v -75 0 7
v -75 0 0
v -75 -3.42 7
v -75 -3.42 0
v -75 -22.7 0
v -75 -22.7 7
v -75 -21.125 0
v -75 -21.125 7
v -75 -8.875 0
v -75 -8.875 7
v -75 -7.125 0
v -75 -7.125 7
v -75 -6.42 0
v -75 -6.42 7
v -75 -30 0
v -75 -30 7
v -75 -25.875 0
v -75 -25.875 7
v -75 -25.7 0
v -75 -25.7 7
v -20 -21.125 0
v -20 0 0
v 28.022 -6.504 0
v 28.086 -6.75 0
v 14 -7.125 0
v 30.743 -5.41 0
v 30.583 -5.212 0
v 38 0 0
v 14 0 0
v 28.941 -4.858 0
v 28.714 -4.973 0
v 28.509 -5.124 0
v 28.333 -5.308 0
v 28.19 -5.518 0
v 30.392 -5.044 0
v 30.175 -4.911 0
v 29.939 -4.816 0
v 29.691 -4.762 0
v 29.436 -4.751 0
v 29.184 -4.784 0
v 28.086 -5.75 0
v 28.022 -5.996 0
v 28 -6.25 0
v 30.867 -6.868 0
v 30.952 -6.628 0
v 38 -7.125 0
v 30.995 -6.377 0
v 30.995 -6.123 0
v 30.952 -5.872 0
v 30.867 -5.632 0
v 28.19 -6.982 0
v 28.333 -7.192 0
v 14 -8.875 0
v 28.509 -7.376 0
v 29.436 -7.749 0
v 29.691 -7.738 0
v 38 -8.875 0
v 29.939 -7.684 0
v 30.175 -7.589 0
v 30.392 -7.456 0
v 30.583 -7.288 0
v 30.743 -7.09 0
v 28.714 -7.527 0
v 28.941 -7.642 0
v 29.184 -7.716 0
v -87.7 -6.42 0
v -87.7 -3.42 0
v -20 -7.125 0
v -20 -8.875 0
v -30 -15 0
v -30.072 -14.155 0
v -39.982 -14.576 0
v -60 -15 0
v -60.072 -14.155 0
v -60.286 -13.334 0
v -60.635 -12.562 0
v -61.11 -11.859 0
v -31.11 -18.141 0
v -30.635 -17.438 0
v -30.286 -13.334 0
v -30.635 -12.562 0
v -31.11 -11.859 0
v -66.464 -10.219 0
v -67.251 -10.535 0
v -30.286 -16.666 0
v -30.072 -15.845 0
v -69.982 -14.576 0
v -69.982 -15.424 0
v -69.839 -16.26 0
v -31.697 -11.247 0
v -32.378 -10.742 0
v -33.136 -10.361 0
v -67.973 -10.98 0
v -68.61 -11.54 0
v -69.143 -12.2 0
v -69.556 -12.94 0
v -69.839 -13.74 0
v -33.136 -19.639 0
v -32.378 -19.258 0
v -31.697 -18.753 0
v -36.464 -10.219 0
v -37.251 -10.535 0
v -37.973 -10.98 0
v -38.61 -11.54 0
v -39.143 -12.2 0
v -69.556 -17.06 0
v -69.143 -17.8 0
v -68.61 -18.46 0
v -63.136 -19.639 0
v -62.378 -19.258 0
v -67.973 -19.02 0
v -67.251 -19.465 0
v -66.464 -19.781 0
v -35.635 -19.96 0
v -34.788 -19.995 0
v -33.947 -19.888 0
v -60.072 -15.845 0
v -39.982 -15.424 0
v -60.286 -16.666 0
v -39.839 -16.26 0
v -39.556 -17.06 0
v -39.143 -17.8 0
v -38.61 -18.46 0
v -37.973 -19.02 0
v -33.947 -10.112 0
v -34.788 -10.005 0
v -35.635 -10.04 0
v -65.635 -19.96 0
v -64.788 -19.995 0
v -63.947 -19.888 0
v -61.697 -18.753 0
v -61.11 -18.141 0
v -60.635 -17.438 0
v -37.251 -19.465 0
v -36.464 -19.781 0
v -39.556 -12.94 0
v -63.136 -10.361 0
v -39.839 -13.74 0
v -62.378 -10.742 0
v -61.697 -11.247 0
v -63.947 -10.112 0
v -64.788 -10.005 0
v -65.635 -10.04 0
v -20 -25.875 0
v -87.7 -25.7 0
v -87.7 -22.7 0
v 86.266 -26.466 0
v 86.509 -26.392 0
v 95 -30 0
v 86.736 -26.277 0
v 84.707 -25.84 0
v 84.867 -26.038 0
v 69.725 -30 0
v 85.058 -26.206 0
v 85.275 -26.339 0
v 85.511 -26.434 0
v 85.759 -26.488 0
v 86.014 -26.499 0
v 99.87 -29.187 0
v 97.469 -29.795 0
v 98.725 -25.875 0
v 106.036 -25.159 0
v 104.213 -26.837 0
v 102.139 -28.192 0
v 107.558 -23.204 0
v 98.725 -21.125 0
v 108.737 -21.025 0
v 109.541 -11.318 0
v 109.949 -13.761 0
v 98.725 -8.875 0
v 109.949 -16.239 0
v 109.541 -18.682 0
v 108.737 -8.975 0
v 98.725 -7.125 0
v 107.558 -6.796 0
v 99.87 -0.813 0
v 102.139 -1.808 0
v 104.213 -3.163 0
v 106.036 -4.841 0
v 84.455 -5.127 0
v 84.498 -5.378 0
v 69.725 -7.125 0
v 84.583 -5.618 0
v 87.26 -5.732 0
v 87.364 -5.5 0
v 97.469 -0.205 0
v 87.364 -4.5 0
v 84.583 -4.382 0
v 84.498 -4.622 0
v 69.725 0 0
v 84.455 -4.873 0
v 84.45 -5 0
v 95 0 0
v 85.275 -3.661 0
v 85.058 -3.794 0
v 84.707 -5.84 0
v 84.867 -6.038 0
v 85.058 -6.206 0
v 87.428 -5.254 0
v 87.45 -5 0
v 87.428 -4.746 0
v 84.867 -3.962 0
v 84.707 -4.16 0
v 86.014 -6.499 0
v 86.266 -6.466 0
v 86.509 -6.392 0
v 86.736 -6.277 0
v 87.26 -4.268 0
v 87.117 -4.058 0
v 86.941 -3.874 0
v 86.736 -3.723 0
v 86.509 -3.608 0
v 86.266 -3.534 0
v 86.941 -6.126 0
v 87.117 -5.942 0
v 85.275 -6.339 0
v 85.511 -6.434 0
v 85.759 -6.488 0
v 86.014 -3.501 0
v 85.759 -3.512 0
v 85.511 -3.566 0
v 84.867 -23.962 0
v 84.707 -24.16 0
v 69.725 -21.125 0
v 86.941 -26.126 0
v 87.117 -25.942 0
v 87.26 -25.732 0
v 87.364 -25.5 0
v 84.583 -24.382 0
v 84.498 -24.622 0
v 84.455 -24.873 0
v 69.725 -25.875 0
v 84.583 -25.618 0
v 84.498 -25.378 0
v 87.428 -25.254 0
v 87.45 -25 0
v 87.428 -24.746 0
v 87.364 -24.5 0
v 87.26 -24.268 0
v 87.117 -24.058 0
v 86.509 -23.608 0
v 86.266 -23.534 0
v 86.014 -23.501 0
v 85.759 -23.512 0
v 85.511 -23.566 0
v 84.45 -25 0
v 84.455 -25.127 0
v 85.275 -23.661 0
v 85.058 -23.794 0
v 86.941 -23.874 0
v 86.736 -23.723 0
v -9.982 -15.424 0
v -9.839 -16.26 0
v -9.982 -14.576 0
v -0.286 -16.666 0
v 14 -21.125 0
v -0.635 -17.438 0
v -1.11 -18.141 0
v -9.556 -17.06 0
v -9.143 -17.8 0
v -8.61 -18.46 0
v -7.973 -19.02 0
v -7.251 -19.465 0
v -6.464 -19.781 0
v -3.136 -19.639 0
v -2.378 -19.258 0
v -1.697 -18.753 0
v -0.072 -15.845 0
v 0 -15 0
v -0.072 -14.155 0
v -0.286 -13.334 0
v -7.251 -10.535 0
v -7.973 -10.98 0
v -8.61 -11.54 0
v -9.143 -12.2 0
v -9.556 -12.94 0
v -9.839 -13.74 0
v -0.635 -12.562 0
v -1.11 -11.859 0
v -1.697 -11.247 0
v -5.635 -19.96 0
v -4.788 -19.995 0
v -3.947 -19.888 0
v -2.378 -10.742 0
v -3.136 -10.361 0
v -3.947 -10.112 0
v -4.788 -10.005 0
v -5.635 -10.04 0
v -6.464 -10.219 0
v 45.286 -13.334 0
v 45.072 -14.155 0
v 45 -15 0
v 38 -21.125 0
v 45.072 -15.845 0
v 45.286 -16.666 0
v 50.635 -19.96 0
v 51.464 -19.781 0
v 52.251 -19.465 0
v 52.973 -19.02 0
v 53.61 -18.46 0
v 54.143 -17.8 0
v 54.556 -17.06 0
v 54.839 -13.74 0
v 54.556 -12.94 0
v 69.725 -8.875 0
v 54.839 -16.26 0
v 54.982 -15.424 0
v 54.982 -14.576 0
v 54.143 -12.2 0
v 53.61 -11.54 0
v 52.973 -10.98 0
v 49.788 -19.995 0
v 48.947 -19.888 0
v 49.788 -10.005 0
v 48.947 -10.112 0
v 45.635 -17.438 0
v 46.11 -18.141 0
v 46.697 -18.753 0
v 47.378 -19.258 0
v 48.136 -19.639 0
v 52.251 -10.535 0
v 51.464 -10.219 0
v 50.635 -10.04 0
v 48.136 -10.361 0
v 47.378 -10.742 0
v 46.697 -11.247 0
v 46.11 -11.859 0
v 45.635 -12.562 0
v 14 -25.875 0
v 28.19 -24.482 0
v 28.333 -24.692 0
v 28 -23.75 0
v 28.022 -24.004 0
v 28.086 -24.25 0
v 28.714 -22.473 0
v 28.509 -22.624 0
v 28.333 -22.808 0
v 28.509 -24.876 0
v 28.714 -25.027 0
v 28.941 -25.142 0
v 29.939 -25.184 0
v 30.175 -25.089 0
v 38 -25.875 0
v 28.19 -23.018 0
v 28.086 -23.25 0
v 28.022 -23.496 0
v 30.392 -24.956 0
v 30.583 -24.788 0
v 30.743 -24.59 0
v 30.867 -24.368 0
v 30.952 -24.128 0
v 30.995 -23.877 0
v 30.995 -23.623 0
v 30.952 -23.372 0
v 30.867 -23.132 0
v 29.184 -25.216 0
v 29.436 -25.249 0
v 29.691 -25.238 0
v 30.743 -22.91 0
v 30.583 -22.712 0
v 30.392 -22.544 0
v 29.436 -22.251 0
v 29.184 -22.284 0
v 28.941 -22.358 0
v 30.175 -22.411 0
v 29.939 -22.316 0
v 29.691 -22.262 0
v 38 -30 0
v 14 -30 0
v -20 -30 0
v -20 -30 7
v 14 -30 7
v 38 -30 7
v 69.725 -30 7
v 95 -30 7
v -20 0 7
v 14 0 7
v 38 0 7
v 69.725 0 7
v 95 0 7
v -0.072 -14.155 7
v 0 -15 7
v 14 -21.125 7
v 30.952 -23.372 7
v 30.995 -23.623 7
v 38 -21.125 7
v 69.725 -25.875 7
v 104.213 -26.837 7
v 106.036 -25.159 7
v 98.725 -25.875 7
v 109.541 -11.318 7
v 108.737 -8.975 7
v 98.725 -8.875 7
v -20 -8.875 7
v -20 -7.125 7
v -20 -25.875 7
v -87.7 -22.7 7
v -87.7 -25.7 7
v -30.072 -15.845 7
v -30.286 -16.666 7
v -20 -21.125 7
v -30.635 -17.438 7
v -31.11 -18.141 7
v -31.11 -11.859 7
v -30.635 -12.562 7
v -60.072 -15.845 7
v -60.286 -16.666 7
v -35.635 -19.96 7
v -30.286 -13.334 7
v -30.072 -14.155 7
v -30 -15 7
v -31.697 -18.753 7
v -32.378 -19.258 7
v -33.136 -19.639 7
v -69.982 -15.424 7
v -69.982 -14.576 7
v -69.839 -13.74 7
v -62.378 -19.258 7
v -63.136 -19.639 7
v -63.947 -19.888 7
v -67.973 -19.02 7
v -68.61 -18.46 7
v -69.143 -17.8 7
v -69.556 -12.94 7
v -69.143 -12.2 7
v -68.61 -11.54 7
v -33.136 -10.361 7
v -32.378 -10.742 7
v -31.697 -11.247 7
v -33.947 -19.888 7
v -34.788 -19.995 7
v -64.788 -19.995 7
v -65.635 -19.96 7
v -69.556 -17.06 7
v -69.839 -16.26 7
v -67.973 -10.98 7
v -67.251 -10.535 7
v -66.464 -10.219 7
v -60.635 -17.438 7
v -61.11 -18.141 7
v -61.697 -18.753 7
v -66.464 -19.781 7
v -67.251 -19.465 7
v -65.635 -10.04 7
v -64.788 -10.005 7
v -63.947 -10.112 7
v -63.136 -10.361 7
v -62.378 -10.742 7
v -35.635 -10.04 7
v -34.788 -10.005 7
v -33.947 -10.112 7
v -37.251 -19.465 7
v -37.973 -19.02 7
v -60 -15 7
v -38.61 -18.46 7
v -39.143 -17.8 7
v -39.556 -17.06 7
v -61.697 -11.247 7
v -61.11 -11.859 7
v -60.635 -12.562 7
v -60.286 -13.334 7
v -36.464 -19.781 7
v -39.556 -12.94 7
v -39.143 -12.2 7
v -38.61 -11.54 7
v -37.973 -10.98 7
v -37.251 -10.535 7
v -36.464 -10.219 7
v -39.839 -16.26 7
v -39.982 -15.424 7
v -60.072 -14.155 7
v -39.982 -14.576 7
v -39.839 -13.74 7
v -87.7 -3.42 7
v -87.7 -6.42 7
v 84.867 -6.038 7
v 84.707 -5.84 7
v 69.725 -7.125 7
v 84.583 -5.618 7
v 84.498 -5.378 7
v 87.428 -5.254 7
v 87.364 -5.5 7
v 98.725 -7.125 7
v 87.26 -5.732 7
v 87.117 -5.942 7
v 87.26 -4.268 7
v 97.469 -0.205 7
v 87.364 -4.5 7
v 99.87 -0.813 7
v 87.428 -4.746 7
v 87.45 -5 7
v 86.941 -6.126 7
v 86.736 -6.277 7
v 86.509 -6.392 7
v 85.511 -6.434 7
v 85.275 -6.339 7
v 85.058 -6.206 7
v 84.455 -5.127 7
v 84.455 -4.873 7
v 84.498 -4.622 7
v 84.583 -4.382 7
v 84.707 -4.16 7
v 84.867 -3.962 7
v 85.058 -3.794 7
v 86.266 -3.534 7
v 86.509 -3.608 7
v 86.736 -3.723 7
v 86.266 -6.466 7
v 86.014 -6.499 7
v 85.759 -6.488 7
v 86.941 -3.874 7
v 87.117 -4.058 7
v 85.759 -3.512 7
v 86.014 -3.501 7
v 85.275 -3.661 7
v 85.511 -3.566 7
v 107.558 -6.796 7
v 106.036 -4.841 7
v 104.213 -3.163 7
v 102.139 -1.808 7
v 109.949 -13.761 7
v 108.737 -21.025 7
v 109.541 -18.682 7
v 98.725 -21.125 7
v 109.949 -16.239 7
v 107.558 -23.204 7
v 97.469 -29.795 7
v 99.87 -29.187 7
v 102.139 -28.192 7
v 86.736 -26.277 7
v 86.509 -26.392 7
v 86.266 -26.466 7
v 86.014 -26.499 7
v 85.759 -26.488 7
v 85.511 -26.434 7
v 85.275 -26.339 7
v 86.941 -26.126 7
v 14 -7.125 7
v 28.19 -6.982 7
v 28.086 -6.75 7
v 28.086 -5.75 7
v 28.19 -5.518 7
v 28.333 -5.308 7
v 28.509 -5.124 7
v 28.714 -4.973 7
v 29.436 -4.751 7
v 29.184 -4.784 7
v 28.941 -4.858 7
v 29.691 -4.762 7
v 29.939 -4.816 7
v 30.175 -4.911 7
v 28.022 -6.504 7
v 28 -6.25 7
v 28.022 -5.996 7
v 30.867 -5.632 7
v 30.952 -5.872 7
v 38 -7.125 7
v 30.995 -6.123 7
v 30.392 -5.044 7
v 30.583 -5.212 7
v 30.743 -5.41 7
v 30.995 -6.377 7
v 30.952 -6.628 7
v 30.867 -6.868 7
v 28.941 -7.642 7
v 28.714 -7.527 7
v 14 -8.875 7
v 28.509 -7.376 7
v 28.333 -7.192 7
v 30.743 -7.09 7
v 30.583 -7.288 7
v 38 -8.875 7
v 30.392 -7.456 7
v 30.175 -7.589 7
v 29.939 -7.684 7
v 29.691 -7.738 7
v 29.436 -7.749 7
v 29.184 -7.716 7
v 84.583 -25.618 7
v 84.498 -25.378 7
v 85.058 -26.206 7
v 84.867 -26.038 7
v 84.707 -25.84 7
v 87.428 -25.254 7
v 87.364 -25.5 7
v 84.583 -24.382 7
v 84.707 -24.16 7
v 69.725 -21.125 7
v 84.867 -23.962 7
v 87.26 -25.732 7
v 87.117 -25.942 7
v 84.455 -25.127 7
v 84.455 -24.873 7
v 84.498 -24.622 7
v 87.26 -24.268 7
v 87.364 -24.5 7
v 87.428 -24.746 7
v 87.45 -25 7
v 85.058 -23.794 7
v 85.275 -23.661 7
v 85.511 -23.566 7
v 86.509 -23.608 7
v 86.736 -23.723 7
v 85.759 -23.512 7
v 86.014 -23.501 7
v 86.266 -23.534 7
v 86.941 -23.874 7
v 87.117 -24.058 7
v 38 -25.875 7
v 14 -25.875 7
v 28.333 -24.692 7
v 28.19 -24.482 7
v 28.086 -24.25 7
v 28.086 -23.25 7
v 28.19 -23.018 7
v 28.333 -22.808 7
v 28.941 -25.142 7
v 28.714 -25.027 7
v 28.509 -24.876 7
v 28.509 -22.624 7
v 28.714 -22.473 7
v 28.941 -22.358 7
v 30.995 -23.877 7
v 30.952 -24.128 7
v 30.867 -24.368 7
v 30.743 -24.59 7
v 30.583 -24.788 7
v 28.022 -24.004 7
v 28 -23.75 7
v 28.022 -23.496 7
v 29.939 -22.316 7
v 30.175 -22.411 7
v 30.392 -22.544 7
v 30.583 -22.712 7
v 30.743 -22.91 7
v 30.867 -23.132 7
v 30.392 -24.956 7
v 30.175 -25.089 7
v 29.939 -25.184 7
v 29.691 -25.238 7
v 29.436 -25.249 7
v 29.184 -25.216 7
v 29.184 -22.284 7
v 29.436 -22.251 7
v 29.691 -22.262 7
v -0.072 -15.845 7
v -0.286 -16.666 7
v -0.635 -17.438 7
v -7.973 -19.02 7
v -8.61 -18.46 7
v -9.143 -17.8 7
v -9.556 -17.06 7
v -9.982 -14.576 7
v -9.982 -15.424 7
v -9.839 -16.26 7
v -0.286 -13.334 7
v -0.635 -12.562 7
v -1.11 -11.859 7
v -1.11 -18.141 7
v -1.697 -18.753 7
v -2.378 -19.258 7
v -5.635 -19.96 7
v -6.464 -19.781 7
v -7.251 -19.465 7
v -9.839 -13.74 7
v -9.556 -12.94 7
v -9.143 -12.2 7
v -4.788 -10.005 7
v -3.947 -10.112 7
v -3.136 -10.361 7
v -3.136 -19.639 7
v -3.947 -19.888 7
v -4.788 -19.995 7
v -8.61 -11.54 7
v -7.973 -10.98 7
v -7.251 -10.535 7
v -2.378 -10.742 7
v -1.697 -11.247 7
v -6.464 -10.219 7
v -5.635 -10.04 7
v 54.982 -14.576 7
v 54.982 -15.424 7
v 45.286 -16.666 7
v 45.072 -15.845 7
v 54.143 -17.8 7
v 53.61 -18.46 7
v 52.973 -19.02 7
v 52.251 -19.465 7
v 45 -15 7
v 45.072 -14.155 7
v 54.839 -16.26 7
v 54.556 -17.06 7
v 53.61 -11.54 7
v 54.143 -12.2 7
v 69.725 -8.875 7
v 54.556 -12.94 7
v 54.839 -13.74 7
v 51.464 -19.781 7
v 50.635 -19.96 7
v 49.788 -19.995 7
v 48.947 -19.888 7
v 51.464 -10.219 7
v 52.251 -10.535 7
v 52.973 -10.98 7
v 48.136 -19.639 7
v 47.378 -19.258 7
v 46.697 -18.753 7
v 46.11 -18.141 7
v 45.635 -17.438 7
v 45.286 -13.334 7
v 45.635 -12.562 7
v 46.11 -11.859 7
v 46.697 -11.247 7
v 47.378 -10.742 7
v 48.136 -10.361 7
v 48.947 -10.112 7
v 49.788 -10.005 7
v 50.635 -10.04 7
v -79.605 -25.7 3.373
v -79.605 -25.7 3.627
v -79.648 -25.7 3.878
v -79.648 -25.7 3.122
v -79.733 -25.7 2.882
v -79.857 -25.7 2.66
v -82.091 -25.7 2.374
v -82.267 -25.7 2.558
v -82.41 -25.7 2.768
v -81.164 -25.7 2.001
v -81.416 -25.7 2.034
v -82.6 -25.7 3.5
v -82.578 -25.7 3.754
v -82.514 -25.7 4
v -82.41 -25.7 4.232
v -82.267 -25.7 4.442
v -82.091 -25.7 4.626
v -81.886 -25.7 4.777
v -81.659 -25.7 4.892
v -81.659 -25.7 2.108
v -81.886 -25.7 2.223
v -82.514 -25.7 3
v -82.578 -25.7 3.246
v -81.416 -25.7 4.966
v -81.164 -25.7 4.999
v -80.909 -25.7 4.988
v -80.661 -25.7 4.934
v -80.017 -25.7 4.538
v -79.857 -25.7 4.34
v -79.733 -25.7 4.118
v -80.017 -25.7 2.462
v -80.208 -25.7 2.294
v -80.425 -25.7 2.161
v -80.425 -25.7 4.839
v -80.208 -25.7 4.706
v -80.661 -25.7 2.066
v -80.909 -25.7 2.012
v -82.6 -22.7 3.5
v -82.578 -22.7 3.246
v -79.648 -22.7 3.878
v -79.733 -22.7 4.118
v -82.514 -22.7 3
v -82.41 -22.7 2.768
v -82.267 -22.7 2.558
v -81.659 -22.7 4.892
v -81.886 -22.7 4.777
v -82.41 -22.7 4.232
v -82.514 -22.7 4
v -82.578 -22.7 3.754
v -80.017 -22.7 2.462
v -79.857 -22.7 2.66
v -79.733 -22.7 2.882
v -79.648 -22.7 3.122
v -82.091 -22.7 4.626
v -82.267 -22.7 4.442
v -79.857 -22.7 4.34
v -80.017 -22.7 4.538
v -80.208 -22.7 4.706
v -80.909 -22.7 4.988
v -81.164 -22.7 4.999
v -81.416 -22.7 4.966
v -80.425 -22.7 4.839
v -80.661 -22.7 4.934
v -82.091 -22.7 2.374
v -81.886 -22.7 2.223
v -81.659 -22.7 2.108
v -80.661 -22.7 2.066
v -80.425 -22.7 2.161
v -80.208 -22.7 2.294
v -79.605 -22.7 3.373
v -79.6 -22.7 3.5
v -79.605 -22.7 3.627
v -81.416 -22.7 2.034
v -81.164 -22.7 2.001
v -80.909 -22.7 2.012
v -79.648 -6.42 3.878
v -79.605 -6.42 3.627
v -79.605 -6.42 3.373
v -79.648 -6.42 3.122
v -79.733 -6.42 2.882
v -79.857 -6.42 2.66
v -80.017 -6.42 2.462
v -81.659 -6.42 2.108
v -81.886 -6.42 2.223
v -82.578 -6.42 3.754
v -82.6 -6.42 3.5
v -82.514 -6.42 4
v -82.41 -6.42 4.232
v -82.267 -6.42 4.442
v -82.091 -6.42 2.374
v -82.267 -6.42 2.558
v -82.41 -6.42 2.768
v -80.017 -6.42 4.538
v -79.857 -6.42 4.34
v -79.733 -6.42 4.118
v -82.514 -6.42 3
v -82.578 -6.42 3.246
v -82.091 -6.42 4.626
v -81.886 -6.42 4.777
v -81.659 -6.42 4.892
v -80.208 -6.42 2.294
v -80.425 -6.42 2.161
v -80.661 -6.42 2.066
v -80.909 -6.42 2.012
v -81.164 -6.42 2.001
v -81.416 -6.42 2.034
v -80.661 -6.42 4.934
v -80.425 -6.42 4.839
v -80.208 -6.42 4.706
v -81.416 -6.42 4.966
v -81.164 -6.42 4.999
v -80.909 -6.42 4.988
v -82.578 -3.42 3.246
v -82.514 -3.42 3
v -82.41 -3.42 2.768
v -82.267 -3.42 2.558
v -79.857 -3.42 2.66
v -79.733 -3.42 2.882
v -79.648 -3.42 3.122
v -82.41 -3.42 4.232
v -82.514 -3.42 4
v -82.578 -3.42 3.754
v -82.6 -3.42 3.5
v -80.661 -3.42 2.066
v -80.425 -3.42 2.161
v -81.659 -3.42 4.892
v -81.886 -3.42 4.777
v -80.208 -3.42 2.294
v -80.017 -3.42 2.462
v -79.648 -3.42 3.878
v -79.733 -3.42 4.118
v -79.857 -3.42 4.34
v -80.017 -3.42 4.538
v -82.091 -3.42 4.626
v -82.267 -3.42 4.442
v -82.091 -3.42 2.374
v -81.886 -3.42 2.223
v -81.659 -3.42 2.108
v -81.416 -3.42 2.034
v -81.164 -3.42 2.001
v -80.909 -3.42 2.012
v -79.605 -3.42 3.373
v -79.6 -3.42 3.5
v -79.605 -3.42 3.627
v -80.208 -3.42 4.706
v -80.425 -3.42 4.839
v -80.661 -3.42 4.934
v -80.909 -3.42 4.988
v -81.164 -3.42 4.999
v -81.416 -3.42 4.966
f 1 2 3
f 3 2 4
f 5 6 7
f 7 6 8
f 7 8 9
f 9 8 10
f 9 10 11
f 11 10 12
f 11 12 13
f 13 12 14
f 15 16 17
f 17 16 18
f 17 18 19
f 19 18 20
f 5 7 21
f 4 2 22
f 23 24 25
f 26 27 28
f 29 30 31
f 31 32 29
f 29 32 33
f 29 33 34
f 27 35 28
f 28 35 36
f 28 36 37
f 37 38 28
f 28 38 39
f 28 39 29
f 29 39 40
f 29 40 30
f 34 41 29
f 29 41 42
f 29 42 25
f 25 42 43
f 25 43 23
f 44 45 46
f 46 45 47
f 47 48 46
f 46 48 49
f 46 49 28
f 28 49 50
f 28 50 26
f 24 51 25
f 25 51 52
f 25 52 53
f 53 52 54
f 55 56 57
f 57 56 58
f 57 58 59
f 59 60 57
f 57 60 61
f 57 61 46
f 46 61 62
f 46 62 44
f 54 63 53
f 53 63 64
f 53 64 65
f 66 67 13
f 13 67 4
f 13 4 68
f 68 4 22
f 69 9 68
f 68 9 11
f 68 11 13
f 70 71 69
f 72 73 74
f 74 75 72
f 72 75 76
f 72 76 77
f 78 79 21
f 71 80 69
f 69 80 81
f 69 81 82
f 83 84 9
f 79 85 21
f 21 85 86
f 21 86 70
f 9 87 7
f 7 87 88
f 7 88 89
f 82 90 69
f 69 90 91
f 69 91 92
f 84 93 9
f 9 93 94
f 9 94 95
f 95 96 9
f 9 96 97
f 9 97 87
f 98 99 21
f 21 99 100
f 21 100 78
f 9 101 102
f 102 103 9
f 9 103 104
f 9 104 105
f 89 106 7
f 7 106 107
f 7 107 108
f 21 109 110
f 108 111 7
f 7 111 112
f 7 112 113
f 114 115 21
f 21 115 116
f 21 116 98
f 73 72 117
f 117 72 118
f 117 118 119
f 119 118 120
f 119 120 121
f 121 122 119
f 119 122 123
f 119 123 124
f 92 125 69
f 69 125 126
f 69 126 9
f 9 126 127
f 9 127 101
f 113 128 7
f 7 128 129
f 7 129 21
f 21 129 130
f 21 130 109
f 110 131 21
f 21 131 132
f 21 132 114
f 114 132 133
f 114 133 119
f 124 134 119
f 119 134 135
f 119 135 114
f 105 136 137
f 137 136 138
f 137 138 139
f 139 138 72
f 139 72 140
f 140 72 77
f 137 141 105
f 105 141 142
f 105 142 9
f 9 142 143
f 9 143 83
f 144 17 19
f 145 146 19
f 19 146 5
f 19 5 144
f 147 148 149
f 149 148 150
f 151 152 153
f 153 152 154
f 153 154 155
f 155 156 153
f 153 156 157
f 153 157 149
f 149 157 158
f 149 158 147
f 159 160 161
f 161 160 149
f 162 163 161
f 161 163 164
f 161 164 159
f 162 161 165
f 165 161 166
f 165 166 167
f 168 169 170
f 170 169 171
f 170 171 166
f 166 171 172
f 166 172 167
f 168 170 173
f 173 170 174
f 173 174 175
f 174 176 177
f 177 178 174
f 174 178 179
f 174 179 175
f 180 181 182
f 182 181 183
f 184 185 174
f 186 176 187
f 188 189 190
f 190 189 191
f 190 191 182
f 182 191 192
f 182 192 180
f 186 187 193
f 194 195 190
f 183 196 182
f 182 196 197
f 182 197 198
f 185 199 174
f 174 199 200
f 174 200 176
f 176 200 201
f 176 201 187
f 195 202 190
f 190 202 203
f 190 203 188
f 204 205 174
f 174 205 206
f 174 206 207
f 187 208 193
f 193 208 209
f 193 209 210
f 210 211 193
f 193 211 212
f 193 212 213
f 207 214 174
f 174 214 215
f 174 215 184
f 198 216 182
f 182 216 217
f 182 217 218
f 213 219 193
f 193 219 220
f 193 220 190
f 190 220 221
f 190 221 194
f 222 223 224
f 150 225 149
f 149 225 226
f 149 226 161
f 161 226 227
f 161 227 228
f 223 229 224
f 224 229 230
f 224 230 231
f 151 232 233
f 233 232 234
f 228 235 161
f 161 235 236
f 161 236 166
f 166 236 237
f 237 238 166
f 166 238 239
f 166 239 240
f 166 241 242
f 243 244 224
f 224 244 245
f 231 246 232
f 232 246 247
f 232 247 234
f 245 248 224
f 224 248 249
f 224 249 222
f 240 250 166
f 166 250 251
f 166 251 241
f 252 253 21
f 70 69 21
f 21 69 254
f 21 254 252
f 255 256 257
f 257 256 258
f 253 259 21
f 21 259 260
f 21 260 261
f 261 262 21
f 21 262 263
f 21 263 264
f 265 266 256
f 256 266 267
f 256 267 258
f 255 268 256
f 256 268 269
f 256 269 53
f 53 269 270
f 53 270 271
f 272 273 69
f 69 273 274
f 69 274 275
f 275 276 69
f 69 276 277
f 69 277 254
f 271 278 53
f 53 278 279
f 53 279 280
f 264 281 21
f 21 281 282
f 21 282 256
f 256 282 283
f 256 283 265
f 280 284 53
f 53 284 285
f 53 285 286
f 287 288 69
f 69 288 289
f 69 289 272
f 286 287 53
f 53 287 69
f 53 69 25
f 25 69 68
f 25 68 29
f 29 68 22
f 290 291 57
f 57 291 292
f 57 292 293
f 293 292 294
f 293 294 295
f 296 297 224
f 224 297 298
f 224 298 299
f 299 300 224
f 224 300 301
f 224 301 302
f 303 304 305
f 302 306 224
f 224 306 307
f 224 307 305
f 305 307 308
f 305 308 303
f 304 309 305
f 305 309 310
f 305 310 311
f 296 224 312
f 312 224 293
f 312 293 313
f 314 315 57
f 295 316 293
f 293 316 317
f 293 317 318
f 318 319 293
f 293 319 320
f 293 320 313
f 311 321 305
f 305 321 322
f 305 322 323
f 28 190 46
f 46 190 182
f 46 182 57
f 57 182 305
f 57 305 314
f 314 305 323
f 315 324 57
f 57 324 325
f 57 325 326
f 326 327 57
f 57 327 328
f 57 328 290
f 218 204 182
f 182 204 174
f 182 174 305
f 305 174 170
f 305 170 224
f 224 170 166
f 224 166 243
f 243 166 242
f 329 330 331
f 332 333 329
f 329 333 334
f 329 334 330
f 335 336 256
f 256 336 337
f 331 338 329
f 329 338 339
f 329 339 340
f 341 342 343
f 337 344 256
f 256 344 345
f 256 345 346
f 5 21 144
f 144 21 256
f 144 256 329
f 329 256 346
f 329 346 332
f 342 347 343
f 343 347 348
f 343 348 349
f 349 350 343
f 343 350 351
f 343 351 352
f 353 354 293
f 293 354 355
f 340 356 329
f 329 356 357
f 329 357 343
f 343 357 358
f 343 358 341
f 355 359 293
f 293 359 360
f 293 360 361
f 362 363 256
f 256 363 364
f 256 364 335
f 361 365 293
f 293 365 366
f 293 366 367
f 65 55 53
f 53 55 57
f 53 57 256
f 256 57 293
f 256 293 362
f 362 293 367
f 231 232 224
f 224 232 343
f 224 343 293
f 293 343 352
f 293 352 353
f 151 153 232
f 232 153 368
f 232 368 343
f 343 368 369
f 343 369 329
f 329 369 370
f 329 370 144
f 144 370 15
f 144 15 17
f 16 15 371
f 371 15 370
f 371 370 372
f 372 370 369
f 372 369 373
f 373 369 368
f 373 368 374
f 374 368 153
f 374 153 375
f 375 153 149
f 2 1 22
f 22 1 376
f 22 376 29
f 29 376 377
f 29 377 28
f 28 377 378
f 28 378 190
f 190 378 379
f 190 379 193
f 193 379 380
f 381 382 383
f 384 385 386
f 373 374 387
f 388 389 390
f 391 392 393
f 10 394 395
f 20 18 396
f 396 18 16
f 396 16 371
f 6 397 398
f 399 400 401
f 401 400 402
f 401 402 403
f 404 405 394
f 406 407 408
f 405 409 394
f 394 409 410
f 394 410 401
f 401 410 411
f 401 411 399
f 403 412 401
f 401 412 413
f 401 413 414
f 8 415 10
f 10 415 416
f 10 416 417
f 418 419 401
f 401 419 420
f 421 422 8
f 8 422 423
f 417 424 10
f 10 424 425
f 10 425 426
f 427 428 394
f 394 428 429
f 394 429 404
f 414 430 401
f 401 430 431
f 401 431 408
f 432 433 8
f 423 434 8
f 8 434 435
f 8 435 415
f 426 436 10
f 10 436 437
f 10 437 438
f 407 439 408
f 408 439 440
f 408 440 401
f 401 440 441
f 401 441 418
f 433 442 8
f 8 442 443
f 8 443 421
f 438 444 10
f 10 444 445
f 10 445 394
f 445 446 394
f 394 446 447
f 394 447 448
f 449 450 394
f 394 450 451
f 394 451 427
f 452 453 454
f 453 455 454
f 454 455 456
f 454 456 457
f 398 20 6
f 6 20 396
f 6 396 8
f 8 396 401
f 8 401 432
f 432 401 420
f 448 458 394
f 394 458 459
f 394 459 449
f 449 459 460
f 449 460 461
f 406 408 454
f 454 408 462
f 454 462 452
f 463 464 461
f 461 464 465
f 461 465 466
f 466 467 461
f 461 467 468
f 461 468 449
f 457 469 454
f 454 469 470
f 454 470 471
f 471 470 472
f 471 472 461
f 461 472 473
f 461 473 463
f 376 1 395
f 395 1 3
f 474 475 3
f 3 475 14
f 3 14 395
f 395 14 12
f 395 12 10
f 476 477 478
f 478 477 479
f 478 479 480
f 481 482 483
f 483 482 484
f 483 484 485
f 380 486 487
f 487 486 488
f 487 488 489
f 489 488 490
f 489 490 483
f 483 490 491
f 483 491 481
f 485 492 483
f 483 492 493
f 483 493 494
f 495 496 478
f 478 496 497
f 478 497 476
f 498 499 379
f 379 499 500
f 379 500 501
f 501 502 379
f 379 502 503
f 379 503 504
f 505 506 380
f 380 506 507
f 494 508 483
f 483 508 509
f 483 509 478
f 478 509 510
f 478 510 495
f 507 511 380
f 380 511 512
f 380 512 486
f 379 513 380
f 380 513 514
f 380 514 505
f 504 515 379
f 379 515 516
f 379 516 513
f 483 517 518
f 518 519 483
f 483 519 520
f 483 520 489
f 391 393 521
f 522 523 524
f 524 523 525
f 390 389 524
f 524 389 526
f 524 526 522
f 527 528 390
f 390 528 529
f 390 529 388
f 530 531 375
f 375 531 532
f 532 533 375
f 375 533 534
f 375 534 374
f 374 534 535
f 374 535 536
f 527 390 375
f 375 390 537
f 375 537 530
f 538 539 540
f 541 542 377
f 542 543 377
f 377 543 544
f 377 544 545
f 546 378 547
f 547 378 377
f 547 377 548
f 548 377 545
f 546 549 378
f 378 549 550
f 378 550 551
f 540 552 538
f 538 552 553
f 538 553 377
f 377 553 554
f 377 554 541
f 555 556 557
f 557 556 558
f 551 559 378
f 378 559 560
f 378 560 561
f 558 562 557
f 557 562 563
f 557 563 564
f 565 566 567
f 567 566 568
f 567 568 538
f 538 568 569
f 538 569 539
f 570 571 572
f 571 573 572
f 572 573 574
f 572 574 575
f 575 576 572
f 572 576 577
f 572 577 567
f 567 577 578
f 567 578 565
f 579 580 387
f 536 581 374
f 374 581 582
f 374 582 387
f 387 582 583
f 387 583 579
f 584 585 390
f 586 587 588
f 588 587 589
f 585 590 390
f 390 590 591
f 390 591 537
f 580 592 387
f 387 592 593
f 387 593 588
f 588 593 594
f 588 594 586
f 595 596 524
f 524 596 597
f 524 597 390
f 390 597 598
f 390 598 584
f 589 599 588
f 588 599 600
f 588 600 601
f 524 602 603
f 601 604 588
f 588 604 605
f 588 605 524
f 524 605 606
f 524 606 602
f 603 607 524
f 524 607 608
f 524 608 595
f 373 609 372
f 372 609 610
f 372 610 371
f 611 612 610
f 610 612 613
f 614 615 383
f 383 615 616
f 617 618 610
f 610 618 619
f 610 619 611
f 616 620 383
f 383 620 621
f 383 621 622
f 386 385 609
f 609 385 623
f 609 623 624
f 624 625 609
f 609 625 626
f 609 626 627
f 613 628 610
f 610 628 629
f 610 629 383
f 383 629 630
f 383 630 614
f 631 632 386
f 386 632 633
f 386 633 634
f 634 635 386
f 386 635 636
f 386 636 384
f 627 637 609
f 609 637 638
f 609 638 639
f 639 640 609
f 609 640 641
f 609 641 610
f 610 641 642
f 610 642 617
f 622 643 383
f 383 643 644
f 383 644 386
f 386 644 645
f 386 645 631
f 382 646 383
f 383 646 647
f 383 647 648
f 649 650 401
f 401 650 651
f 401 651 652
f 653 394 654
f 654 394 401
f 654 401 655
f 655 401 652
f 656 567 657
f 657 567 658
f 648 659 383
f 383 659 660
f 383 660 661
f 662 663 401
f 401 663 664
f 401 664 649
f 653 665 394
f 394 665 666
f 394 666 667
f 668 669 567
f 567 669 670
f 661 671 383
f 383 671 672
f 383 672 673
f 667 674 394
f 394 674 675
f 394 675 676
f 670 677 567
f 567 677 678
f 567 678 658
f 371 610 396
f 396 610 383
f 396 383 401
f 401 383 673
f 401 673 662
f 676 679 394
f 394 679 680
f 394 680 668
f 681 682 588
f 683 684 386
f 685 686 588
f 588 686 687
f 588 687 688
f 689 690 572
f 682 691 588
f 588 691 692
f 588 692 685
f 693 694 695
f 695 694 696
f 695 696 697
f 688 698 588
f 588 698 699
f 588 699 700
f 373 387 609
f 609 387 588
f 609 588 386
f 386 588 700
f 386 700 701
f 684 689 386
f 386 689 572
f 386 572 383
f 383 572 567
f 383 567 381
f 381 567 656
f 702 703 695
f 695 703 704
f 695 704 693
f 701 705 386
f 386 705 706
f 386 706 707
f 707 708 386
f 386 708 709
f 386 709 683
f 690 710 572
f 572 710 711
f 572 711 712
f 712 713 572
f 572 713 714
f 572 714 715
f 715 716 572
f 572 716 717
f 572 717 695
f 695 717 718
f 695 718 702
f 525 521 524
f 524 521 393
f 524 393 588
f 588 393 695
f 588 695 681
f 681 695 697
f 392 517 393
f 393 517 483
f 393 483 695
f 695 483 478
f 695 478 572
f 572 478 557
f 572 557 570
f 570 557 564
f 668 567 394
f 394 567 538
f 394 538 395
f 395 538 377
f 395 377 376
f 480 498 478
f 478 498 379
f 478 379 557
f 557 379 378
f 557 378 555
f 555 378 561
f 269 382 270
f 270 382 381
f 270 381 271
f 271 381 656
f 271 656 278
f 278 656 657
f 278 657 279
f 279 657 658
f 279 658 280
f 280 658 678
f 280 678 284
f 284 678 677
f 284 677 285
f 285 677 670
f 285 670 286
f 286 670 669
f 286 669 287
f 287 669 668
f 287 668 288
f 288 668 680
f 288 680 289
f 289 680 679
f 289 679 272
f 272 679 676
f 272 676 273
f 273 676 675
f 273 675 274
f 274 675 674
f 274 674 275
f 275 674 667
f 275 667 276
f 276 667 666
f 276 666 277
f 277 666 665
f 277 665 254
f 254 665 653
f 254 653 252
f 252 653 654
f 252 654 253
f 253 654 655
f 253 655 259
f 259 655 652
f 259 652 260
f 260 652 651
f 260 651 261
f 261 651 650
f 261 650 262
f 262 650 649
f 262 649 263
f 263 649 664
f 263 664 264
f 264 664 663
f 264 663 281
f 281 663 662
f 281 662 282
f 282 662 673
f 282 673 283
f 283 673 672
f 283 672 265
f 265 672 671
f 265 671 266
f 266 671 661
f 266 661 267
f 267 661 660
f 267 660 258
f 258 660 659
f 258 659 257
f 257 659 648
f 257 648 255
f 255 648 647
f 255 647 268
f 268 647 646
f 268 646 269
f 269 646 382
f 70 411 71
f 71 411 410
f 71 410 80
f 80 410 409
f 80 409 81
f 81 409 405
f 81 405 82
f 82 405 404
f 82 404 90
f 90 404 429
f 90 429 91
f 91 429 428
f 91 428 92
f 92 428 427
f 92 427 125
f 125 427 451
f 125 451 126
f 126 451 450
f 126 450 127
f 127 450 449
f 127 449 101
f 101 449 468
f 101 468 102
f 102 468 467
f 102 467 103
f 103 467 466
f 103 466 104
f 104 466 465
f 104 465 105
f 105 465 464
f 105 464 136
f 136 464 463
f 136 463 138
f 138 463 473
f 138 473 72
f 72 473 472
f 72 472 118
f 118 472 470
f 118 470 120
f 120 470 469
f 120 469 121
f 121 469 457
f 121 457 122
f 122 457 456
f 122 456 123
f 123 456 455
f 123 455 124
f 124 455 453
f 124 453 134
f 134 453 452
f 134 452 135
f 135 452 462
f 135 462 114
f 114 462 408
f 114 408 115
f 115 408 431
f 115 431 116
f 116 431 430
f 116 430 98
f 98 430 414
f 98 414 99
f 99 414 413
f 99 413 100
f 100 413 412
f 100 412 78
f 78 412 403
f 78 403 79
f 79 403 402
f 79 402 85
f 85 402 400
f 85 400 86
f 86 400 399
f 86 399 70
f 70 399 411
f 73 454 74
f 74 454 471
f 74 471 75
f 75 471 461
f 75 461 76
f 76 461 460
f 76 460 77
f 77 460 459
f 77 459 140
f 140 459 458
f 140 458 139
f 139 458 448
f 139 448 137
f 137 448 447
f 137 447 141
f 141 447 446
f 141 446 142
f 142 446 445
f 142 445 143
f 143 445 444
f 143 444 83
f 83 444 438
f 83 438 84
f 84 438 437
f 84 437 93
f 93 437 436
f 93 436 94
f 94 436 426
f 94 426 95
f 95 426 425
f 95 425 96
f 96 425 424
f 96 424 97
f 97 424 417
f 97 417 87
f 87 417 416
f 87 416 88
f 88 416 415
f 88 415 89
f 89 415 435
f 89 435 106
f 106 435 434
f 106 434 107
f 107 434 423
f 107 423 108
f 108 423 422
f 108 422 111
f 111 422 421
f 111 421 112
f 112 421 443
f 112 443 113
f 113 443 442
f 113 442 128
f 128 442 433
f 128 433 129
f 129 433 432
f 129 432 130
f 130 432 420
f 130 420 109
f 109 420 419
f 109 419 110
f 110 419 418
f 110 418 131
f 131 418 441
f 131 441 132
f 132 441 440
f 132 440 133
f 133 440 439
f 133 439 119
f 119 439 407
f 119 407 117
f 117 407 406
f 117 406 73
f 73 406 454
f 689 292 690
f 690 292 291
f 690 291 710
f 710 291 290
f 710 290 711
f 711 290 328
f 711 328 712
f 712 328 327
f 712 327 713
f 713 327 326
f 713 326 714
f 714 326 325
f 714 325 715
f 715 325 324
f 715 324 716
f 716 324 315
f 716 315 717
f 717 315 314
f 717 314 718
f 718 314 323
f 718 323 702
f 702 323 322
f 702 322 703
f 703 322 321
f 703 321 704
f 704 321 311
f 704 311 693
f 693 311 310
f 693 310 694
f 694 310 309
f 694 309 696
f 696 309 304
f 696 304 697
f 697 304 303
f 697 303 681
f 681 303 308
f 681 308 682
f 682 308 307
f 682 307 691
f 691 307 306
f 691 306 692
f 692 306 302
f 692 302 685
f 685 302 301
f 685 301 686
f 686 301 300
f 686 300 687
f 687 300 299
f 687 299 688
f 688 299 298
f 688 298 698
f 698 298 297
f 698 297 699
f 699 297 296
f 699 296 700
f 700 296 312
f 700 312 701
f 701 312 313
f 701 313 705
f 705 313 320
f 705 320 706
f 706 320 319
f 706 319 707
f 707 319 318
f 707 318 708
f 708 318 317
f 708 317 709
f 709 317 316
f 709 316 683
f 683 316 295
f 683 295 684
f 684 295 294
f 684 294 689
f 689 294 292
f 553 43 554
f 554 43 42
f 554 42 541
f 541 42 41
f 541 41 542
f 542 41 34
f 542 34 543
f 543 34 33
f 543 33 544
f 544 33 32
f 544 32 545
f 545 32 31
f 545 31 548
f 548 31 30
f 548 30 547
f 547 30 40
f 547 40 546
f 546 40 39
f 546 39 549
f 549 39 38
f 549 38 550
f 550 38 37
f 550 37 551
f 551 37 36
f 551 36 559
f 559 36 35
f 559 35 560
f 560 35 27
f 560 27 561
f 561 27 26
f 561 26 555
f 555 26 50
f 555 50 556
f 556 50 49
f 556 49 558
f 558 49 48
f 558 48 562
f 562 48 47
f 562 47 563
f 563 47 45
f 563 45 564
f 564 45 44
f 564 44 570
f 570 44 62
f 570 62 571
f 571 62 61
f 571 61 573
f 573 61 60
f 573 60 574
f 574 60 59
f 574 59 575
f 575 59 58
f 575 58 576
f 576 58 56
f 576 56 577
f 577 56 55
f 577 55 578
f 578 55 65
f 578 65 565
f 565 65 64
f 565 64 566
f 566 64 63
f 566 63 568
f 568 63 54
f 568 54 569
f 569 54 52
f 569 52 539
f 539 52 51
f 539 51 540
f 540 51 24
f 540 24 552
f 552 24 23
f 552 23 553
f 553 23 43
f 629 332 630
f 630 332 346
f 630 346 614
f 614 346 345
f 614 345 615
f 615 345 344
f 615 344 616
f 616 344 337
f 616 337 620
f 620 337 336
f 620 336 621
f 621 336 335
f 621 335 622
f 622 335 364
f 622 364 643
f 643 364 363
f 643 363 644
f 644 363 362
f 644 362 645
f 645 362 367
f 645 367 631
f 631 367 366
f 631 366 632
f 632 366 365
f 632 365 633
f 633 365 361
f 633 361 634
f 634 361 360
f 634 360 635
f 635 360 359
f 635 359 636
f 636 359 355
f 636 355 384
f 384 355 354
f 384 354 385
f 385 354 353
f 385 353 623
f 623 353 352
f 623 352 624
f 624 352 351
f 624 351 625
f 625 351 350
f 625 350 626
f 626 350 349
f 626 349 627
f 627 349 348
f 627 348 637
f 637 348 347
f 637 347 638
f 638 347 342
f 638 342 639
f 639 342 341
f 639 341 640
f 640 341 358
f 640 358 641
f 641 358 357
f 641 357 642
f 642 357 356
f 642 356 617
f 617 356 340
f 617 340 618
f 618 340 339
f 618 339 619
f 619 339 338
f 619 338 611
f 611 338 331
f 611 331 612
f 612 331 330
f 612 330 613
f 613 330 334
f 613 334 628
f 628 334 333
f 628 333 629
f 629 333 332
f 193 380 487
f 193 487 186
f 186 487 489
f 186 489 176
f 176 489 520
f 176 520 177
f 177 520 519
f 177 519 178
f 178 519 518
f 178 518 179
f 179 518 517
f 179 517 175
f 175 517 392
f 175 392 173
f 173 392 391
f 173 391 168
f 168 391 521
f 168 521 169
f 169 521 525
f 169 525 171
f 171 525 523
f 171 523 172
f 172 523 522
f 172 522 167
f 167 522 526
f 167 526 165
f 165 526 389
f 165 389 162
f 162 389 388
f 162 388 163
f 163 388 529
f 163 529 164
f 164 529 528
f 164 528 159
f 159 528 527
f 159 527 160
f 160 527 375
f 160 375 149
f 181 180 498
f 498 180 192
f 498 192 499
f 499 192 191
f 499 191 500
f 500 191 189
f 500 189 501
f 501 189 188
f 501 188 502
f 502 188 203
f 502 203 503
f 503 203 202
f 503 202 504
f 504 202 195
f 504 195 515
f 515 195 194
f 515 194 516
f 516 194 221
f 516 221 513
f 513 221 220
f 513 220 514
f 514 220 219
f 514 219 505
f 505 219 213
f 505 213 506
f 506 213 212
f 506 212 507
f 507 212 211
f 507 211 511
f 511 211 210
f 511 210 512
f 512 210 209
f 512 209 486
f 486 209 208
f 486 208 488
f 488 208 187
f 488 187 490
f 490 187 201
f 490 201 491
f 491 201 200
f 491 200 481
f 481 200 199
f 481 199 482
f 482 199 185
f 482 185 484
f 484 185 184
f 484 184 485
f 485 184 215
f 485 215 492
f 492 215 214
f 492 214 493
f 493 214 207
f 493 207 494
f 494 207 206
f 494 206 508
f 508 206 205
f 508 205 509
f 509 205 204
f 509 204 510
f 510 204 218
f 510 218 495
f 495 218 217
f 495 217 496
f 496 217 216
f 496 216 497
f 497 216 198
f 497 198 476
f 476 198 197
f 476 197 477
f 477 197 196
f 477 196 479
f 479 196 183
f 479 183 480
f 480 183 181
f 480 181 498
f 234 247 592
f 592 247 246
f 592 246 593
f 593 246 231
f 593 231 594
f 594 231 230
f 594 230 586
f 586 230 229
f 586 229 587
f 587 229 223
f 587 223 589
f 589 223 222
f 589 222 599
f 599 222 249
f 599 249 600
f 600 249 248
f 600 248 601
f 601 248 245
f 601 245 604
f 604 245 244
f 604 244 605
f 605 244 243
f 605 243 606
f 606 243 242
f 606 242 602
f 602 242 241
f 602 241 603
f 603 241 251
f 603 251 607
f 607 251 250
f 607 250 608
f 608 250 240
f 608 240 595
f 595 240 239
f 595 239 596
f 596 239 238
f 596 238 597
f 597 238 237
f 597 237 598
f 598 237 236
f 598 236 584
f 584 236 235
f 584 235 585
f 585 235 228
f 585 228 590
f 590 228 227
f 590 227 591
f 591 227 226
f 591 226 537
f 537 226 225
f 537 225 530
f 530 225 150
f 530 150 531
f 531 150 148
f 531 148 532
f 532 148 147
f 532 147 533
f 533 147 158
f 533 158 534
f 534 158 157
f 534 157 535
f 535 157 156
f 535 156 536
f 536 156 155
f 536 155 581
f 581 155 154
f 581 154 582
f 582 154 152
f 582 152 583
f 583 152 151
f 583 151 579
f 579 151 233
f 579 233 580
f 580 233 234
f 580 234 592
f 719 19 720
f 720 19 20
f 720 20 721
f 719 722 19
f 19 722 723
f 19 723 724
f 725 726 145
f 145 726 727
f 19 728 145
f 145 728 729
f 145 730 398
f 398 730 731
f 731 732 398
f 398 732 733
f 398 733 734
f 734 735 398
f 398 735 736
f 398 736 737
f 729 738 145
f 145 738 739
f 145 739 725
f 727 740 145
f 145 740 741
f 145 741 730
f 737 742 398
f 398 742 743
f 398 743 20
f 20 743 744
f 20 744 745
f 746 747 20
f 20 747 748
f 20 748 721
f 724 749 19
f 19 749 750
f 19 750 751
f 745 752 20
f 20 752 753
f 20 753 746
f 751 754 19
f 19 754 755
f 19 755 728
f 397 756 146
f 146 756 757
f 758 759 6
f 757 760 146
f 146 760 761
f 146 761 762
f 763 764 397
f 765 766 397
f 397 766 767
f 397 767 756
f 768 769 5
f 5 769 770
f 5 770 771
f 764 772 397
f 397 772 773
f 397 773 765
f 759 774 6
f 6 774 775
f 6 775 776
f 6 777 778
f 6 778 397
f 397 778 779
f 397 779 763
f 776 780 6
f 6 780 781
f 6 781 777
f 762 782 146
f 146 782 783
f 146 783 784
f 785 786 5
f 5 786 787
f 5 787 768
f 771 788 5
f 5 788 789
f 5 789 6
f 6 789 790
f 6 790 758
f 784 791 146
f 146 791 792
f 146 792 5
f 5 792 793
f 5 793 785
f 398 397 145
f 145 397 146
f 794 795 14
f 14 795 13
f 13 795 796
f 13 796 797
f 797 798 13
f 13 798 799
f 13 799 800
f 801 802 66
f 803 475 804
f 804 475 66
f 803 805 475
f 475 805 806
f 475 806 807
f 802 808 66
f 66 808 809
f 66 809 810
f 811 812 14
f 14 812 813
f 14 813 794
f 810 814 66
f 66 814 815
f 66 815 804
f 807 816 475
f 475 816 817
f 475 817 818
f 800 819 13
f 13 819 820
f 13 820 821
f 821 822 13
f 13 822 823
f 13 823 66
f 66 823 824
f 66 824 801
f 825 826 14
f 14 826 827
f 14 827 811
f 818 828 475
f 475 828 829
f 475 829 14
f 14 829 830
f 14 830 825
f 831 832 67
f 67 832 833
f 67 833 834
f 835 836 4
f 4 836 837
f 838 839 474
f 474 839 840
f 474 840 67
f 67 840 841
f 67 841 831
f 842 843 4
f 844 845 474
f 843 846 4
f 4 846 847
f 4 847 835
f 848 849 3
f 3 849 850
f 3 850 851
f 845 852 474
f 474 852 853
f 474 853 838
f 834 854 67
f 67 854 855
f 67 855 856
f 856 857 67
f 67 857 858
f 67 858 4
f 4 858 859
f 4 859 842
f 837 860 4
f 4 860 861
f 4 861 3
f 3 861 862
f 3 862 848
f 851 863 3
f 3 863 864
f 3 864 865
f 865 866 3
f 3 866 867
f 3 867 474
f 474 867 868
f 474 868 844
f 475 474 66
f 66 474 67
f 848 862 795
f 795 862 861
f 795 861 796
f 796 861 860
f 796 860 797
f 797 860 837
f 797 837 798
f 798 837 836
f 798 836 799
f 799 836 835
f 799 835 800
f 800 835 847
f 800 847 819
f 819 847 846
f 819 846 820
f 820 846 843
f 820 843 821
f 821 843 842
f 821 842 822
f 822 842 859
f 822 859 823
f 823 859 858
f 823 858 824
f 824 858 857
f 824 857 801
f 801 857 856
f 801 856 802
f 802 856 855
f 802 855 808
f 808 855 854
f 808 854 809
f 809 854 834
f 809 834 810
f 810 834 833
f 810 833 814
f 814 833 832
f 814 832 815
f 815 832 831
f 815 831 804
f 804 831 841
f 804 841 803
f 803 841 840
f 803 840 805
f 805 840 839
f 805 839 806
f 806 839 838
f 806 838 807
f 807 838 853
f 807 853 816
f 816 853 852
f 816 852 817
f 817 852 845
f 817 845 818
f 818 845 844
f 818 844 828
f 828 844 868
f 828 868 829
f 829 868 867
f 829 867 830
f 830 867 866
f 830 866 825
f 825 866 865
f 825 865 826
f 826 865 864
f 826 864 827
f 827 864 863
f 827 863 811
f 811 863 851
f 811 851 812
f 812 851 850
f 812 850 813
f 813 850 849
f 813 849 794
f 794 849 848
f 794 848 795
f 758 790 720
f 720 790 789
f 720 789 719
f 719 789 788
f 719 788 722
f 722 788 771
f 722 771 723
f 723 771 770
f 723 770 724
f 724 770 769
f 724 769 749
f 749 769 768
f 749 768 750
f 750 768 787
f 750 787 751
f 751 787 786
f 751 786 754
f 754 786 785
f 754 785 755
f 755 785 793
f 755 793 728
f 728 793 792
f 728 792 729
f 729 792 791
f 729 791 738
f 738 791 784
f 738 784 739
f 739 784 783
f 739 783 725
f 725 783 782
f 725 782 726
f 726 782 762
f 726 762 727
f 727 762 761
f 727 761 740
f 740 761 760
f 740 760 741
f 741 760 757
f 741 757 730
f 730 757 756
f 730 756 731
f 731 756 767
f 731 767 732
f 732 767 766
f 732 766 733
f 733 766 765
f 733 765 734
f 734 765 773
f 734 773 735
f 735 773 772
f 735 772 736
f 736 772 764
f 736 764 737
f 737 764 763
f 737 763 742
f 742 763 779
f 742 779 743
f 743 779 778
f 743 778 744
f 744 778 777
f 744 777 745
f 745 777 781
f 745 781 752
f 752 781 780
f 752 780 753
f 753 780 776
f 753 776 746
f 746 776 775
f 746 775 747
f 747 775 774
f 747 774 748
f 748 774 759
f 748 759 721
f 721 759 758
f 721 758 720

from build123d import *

# Parameters (mm, degrees)
BOSS_EXTRUDE1_DEPTH      = 7
SKETCH2_R                = 5
CUT_EXTRUDE1_DEPTH       = 7
LPATTERN1_COUNT          = 7
LPATTERN1_PITCH          = 30
SKETCH6_R                = 5
CUT_EXTRUDE2_DEPTH       = 10
CUT_EXTRUDE4_REACH       = 219.196
SKETCH9_R                = 1.5
SKETCH16_W               = 47
SKETCH16_H               = 39.930416712
SKETCH16_R               = 8.2
BOSS_EXTRUDE2_DEPTH      = 10
SKETCH17_W               = 45.833760325
SKETCH17_H               = 30.12512517
SKETCH17_W_2             = 13.763297709
SKETCH17_H_2             = 9.222578979
CUT_EXTRUDE15_DEPTH      = 9
CUT_EXTRUDE18_REACH      = 223.779
SKETCH18_W               = 140
SKETCH18_H               = 115.832892108
BOSS_EXTRUDE5_START      = -7
BOSS_EXTRUDE5_DEPTH      = 7
CUT_EXTRUDE19_DEPTH      = 10
SKETCH25_W               = 7
SKETCH25_H               = 3
BOSS_EXTRUDE6_DEPTH      = 12.7
CUT_EXTRUDE20_DEPTH      = 114.382079461
CUT_EXTRUDE20_DEPTH_BACK = 114.382079461
SKETCH26_R               = 1.5


with BuildPart() as part:
    # Sketch1 → Boss-Extrude1 (new body)
    with BuildSketch(Plane.XY):
        with BuildLine():
            Line((-200, 0), (50, 0))
            ThreePointArc((50, 0), (65, -15), (50, -30))
            Line((50, -30), (-200, -30))
            ThreePointArc((-200, -30), (-215, -15), (-200, 0))
        make_face()
    extrude(amount=BOSS_EXTRUDE1_DEPTH)

    # Sketch2 → Cut-Extrude1 (cut)
    with BuildSketch(Plane.XY.offset(7)):
        with Locations((-185, -15)):
            Circle(SKETCH2_R)
    cut_extrude1 = extrude(amount=-CUT_EXTRUDE1_DEPTH, mode=Mode.SUBTRACT)

    # LPattern1: Cut-Extrude1 ×7
    with Locations(*[(i * LPATTERN1_PITCH, 0, 0) for i in range(1, LPATTERN1_COUNT)]):
        add(cut_extrude1, mode=Mode.SUBTRACT)

    # Sketch6 → Cut-Extrude2 (cut)
    with BuildSketch(Plane(origin=(0, 0, 0), x_dir=(-1, 0, 0), z_dir=(0, 0, -1))):
        with Locations((-50, -15)):
            Circle(SKETCH6_R)
    extrude(amount=-CUT_EXTRUDE2_DEPTH, mode=Mode.SUBTRACT)

    # Sketch9 → Cut-Extrude4 (cut, up to next)
    with BuildSketch(Plane(origin=(0, 0, 0), x_dir=(-1, 0, 0), z_dir=(0, 0, -1)), mode=Mode.PRIVATE) as cut_extrude4_sk1:
        with Locations((-29.5, -6.25)):
            Circle(SKETCH9_R)
    cut_extrude4_tool1 = extrude(cut_extrude4_sk1.sketch, amount=-CUT_EXTRUDE4_REACH, mode=Mode.PRIVATE) & part.part
    # Sketch9 → Cut-Extrude4 (cut, up to next)
    with BuildSketch(Plane(origin=(0, 0, 0), x_dir=(-1, 0, 0), z_dir=(0, 0, -1)), mode=Mode.PRIVATE) as cut_extrude4_sk2:
        with Locations((-29.5, -23.75)):
            Circle(SKETCH9_R)
    cut_extrude4_tool2 = extrude(cut_extrude4_sk2.sketch, amount=-CUT_EXTRUDE4_REACH, mode=Mode.PRIVATE) & part.part
    add(cut_extrude4_tool1.solids().sort_by_distance((29.5, -6.25, 0))[0], mode=Mode.SUBTRACT)
    add(cut_extrude4_tool2.solids().sort_by_distance((29.5, -23.75, 0))[0], mode=Mode.SUBTRACT)

    # Sketch16 → Boss-Extrude2 (add)
    with BuildSketch(Plane(origin=(0, 0, 0), x_dir=(-1, 0, 0), z_dir=(0, 0, -1))):
        with Locations((156.5, -31.726084321)):
            Rectangle(SKETCH16_W, SKETCH16_H)
        with Locations((143.645834005, -39.243444981)):
            Circle(SKETCH16_R, mode=Mode.SUBTRACT)
        with Locations((169.806394215, -39.243444981)):
            Circle(SKETCH16_R, mode=Mode.SUBTRACT)
        with BuildLine():
            Line((152.543612389, -45.175236858), (161.148055619, -45.175236858))
            ThreePointArc((161.148055619, -45.175236858), (162.890378664, -46.917559902), (161.148055619, -48.659882947))
            Line((161.148055619, -48.659882947), (152.543612389, -48.659882947))
            ThreePointArc((152.543612389, -48.659882947), (150.801289344, -46.917559902), (152.543612389, -45.175236858))
        make_face(mode=Mode.SUBTRACT)
    extrude(amount=BOSS_EXTRUDE2_DEPTH)

    # Sketch17 → Cut-Extrude15 (cut)
    with BuildSketch(Plane(origin=(0, 0, -10), x_dir=(-1, 0, 0), z_dir=(0, 0, -1))):
        with Locations((156.666880163, -35.963336462)):
            Rectangle(SKETCH17_W, SKETCH17_H)
        with Locations((156.826506841, -16.372165454)):
            Rectangle(SKETCH17_W_2, SKETCH17_H_2)
    extrude(amount=-CUT_EXTRUDE15_DEPTH, mode=Mode.SUBTRACT)

    # Sketch18 → Cut-Extrude18 (cut, up to next)
    with BuildSketch(Plane.XY.offset(7), mode=Mode.PRIVATE) as cut_extrude18_sk1:
        with Locations((-145, -15)):
            Rectangle(SKETCH18_W, SKETCH18_H)
    cut_extrude18_tool1 = extrude(cut_extrude18_sk1.sketch, amount=-CUT_EXTRUDE18_REACH, mode=Mode.PRIVATE) & part.part
    add(cut_extrude18_tool1.solids().sort_by_distance((-145, -15, 7))[0], mode=Mode.SUBTRACT)

    # Sketch23 → Boss-Extrude5 (add)
    with BuildSketch(Plane.XY.offset(7).offset(BOSS_EXTRUDE5_START)):
        with BuildLine():
            Line((95, 0), (50, 0))
            ThreePointArc((50, 0), (65, -15), (50, -30))
            Line((50, -30), (95, -30))
            ThreePointArc((95, -30), (110, -15), (95, 0))
        make_face()
    extrude(amount=BOSS_EXTRUDE5_DEPTH)

    # Sketch24 → Cut-Extrude19 (cut)
    with BuildSketch(Plane.XY.offset(7)):
        with BuildLine():
            ThreePointArc((87.45, -25), (87.010660172, -23.939339828), (85.95, -23.5))
            Line((85.95, -23.5), (85.95, -26.5))
            ThreePointArc((85.95, -26.5), (87.010660172, -26.060660172), (87.45, -25))
        make_face()
        with BuildLine():
            Line((85.95, -26.5), (85.95, -23.5))
            ThreePointArc((85.95, -23.5), (84.45, -25), (85.95, -26.5))
        make_face()
        with BuildLine():
            ThreePointArc((87.45, -5), (87.010660172, -3.939339828), (85.95, -3.5))
            Line((85.95, -3.5), (85.95, -6.5))
            ThreePointArc((85.95, -6.5), (87.010660172, -6.060660172), (87.45, -5))
        make_face()
        with BuildLine():
            Line((85.95, -6.5), (85.95, -3.5))
            ThreePointArc((85.95, -3.5), (84.45, -5), (85.95, -6.5))
        make_face()
    extrude(amount=-CUT_EXTRUDE19_DEPTH, mode=Mode.SUBTRACT)

    # Sketch25 → Boss-Extrude6 (add)
    with BuildSketch(Plane.ZY.offset(75)):
        with Locations((3.5, -4.920008597)):
            Rectangle(SKETCH25_W, SKETCH25_H)
        with Locations((3.5, -24.2)):
            Rectangle(SKETCH25_W, SKETCH25_H)
    extrude(amount=BOSS_EXTRUDE6_DEPTH)

    # Sketch26 → Cut-Extrude20 (cut, two sides: drawn at the far end of the back side and taken through both)
    with BuildSketch(Plane(origin=(0, -3.420008597, 0), x_dir=(1, 0, 0), z_dir=(0, 1, 0)).offset(-CUT_EXTRUDE20_DEPTH_BACK)):
        with Locations(Location((-81.1, -3.5, 0), (0, 0, 180))):
            Circle(SKETCH26_R)
    extrude(amount=CUT_EXTRUDE20_DEPTH + CUT_EXTRUDE20_DEPTH_BACK, mode=Mode.SUBTRACT)


solid = part.part
